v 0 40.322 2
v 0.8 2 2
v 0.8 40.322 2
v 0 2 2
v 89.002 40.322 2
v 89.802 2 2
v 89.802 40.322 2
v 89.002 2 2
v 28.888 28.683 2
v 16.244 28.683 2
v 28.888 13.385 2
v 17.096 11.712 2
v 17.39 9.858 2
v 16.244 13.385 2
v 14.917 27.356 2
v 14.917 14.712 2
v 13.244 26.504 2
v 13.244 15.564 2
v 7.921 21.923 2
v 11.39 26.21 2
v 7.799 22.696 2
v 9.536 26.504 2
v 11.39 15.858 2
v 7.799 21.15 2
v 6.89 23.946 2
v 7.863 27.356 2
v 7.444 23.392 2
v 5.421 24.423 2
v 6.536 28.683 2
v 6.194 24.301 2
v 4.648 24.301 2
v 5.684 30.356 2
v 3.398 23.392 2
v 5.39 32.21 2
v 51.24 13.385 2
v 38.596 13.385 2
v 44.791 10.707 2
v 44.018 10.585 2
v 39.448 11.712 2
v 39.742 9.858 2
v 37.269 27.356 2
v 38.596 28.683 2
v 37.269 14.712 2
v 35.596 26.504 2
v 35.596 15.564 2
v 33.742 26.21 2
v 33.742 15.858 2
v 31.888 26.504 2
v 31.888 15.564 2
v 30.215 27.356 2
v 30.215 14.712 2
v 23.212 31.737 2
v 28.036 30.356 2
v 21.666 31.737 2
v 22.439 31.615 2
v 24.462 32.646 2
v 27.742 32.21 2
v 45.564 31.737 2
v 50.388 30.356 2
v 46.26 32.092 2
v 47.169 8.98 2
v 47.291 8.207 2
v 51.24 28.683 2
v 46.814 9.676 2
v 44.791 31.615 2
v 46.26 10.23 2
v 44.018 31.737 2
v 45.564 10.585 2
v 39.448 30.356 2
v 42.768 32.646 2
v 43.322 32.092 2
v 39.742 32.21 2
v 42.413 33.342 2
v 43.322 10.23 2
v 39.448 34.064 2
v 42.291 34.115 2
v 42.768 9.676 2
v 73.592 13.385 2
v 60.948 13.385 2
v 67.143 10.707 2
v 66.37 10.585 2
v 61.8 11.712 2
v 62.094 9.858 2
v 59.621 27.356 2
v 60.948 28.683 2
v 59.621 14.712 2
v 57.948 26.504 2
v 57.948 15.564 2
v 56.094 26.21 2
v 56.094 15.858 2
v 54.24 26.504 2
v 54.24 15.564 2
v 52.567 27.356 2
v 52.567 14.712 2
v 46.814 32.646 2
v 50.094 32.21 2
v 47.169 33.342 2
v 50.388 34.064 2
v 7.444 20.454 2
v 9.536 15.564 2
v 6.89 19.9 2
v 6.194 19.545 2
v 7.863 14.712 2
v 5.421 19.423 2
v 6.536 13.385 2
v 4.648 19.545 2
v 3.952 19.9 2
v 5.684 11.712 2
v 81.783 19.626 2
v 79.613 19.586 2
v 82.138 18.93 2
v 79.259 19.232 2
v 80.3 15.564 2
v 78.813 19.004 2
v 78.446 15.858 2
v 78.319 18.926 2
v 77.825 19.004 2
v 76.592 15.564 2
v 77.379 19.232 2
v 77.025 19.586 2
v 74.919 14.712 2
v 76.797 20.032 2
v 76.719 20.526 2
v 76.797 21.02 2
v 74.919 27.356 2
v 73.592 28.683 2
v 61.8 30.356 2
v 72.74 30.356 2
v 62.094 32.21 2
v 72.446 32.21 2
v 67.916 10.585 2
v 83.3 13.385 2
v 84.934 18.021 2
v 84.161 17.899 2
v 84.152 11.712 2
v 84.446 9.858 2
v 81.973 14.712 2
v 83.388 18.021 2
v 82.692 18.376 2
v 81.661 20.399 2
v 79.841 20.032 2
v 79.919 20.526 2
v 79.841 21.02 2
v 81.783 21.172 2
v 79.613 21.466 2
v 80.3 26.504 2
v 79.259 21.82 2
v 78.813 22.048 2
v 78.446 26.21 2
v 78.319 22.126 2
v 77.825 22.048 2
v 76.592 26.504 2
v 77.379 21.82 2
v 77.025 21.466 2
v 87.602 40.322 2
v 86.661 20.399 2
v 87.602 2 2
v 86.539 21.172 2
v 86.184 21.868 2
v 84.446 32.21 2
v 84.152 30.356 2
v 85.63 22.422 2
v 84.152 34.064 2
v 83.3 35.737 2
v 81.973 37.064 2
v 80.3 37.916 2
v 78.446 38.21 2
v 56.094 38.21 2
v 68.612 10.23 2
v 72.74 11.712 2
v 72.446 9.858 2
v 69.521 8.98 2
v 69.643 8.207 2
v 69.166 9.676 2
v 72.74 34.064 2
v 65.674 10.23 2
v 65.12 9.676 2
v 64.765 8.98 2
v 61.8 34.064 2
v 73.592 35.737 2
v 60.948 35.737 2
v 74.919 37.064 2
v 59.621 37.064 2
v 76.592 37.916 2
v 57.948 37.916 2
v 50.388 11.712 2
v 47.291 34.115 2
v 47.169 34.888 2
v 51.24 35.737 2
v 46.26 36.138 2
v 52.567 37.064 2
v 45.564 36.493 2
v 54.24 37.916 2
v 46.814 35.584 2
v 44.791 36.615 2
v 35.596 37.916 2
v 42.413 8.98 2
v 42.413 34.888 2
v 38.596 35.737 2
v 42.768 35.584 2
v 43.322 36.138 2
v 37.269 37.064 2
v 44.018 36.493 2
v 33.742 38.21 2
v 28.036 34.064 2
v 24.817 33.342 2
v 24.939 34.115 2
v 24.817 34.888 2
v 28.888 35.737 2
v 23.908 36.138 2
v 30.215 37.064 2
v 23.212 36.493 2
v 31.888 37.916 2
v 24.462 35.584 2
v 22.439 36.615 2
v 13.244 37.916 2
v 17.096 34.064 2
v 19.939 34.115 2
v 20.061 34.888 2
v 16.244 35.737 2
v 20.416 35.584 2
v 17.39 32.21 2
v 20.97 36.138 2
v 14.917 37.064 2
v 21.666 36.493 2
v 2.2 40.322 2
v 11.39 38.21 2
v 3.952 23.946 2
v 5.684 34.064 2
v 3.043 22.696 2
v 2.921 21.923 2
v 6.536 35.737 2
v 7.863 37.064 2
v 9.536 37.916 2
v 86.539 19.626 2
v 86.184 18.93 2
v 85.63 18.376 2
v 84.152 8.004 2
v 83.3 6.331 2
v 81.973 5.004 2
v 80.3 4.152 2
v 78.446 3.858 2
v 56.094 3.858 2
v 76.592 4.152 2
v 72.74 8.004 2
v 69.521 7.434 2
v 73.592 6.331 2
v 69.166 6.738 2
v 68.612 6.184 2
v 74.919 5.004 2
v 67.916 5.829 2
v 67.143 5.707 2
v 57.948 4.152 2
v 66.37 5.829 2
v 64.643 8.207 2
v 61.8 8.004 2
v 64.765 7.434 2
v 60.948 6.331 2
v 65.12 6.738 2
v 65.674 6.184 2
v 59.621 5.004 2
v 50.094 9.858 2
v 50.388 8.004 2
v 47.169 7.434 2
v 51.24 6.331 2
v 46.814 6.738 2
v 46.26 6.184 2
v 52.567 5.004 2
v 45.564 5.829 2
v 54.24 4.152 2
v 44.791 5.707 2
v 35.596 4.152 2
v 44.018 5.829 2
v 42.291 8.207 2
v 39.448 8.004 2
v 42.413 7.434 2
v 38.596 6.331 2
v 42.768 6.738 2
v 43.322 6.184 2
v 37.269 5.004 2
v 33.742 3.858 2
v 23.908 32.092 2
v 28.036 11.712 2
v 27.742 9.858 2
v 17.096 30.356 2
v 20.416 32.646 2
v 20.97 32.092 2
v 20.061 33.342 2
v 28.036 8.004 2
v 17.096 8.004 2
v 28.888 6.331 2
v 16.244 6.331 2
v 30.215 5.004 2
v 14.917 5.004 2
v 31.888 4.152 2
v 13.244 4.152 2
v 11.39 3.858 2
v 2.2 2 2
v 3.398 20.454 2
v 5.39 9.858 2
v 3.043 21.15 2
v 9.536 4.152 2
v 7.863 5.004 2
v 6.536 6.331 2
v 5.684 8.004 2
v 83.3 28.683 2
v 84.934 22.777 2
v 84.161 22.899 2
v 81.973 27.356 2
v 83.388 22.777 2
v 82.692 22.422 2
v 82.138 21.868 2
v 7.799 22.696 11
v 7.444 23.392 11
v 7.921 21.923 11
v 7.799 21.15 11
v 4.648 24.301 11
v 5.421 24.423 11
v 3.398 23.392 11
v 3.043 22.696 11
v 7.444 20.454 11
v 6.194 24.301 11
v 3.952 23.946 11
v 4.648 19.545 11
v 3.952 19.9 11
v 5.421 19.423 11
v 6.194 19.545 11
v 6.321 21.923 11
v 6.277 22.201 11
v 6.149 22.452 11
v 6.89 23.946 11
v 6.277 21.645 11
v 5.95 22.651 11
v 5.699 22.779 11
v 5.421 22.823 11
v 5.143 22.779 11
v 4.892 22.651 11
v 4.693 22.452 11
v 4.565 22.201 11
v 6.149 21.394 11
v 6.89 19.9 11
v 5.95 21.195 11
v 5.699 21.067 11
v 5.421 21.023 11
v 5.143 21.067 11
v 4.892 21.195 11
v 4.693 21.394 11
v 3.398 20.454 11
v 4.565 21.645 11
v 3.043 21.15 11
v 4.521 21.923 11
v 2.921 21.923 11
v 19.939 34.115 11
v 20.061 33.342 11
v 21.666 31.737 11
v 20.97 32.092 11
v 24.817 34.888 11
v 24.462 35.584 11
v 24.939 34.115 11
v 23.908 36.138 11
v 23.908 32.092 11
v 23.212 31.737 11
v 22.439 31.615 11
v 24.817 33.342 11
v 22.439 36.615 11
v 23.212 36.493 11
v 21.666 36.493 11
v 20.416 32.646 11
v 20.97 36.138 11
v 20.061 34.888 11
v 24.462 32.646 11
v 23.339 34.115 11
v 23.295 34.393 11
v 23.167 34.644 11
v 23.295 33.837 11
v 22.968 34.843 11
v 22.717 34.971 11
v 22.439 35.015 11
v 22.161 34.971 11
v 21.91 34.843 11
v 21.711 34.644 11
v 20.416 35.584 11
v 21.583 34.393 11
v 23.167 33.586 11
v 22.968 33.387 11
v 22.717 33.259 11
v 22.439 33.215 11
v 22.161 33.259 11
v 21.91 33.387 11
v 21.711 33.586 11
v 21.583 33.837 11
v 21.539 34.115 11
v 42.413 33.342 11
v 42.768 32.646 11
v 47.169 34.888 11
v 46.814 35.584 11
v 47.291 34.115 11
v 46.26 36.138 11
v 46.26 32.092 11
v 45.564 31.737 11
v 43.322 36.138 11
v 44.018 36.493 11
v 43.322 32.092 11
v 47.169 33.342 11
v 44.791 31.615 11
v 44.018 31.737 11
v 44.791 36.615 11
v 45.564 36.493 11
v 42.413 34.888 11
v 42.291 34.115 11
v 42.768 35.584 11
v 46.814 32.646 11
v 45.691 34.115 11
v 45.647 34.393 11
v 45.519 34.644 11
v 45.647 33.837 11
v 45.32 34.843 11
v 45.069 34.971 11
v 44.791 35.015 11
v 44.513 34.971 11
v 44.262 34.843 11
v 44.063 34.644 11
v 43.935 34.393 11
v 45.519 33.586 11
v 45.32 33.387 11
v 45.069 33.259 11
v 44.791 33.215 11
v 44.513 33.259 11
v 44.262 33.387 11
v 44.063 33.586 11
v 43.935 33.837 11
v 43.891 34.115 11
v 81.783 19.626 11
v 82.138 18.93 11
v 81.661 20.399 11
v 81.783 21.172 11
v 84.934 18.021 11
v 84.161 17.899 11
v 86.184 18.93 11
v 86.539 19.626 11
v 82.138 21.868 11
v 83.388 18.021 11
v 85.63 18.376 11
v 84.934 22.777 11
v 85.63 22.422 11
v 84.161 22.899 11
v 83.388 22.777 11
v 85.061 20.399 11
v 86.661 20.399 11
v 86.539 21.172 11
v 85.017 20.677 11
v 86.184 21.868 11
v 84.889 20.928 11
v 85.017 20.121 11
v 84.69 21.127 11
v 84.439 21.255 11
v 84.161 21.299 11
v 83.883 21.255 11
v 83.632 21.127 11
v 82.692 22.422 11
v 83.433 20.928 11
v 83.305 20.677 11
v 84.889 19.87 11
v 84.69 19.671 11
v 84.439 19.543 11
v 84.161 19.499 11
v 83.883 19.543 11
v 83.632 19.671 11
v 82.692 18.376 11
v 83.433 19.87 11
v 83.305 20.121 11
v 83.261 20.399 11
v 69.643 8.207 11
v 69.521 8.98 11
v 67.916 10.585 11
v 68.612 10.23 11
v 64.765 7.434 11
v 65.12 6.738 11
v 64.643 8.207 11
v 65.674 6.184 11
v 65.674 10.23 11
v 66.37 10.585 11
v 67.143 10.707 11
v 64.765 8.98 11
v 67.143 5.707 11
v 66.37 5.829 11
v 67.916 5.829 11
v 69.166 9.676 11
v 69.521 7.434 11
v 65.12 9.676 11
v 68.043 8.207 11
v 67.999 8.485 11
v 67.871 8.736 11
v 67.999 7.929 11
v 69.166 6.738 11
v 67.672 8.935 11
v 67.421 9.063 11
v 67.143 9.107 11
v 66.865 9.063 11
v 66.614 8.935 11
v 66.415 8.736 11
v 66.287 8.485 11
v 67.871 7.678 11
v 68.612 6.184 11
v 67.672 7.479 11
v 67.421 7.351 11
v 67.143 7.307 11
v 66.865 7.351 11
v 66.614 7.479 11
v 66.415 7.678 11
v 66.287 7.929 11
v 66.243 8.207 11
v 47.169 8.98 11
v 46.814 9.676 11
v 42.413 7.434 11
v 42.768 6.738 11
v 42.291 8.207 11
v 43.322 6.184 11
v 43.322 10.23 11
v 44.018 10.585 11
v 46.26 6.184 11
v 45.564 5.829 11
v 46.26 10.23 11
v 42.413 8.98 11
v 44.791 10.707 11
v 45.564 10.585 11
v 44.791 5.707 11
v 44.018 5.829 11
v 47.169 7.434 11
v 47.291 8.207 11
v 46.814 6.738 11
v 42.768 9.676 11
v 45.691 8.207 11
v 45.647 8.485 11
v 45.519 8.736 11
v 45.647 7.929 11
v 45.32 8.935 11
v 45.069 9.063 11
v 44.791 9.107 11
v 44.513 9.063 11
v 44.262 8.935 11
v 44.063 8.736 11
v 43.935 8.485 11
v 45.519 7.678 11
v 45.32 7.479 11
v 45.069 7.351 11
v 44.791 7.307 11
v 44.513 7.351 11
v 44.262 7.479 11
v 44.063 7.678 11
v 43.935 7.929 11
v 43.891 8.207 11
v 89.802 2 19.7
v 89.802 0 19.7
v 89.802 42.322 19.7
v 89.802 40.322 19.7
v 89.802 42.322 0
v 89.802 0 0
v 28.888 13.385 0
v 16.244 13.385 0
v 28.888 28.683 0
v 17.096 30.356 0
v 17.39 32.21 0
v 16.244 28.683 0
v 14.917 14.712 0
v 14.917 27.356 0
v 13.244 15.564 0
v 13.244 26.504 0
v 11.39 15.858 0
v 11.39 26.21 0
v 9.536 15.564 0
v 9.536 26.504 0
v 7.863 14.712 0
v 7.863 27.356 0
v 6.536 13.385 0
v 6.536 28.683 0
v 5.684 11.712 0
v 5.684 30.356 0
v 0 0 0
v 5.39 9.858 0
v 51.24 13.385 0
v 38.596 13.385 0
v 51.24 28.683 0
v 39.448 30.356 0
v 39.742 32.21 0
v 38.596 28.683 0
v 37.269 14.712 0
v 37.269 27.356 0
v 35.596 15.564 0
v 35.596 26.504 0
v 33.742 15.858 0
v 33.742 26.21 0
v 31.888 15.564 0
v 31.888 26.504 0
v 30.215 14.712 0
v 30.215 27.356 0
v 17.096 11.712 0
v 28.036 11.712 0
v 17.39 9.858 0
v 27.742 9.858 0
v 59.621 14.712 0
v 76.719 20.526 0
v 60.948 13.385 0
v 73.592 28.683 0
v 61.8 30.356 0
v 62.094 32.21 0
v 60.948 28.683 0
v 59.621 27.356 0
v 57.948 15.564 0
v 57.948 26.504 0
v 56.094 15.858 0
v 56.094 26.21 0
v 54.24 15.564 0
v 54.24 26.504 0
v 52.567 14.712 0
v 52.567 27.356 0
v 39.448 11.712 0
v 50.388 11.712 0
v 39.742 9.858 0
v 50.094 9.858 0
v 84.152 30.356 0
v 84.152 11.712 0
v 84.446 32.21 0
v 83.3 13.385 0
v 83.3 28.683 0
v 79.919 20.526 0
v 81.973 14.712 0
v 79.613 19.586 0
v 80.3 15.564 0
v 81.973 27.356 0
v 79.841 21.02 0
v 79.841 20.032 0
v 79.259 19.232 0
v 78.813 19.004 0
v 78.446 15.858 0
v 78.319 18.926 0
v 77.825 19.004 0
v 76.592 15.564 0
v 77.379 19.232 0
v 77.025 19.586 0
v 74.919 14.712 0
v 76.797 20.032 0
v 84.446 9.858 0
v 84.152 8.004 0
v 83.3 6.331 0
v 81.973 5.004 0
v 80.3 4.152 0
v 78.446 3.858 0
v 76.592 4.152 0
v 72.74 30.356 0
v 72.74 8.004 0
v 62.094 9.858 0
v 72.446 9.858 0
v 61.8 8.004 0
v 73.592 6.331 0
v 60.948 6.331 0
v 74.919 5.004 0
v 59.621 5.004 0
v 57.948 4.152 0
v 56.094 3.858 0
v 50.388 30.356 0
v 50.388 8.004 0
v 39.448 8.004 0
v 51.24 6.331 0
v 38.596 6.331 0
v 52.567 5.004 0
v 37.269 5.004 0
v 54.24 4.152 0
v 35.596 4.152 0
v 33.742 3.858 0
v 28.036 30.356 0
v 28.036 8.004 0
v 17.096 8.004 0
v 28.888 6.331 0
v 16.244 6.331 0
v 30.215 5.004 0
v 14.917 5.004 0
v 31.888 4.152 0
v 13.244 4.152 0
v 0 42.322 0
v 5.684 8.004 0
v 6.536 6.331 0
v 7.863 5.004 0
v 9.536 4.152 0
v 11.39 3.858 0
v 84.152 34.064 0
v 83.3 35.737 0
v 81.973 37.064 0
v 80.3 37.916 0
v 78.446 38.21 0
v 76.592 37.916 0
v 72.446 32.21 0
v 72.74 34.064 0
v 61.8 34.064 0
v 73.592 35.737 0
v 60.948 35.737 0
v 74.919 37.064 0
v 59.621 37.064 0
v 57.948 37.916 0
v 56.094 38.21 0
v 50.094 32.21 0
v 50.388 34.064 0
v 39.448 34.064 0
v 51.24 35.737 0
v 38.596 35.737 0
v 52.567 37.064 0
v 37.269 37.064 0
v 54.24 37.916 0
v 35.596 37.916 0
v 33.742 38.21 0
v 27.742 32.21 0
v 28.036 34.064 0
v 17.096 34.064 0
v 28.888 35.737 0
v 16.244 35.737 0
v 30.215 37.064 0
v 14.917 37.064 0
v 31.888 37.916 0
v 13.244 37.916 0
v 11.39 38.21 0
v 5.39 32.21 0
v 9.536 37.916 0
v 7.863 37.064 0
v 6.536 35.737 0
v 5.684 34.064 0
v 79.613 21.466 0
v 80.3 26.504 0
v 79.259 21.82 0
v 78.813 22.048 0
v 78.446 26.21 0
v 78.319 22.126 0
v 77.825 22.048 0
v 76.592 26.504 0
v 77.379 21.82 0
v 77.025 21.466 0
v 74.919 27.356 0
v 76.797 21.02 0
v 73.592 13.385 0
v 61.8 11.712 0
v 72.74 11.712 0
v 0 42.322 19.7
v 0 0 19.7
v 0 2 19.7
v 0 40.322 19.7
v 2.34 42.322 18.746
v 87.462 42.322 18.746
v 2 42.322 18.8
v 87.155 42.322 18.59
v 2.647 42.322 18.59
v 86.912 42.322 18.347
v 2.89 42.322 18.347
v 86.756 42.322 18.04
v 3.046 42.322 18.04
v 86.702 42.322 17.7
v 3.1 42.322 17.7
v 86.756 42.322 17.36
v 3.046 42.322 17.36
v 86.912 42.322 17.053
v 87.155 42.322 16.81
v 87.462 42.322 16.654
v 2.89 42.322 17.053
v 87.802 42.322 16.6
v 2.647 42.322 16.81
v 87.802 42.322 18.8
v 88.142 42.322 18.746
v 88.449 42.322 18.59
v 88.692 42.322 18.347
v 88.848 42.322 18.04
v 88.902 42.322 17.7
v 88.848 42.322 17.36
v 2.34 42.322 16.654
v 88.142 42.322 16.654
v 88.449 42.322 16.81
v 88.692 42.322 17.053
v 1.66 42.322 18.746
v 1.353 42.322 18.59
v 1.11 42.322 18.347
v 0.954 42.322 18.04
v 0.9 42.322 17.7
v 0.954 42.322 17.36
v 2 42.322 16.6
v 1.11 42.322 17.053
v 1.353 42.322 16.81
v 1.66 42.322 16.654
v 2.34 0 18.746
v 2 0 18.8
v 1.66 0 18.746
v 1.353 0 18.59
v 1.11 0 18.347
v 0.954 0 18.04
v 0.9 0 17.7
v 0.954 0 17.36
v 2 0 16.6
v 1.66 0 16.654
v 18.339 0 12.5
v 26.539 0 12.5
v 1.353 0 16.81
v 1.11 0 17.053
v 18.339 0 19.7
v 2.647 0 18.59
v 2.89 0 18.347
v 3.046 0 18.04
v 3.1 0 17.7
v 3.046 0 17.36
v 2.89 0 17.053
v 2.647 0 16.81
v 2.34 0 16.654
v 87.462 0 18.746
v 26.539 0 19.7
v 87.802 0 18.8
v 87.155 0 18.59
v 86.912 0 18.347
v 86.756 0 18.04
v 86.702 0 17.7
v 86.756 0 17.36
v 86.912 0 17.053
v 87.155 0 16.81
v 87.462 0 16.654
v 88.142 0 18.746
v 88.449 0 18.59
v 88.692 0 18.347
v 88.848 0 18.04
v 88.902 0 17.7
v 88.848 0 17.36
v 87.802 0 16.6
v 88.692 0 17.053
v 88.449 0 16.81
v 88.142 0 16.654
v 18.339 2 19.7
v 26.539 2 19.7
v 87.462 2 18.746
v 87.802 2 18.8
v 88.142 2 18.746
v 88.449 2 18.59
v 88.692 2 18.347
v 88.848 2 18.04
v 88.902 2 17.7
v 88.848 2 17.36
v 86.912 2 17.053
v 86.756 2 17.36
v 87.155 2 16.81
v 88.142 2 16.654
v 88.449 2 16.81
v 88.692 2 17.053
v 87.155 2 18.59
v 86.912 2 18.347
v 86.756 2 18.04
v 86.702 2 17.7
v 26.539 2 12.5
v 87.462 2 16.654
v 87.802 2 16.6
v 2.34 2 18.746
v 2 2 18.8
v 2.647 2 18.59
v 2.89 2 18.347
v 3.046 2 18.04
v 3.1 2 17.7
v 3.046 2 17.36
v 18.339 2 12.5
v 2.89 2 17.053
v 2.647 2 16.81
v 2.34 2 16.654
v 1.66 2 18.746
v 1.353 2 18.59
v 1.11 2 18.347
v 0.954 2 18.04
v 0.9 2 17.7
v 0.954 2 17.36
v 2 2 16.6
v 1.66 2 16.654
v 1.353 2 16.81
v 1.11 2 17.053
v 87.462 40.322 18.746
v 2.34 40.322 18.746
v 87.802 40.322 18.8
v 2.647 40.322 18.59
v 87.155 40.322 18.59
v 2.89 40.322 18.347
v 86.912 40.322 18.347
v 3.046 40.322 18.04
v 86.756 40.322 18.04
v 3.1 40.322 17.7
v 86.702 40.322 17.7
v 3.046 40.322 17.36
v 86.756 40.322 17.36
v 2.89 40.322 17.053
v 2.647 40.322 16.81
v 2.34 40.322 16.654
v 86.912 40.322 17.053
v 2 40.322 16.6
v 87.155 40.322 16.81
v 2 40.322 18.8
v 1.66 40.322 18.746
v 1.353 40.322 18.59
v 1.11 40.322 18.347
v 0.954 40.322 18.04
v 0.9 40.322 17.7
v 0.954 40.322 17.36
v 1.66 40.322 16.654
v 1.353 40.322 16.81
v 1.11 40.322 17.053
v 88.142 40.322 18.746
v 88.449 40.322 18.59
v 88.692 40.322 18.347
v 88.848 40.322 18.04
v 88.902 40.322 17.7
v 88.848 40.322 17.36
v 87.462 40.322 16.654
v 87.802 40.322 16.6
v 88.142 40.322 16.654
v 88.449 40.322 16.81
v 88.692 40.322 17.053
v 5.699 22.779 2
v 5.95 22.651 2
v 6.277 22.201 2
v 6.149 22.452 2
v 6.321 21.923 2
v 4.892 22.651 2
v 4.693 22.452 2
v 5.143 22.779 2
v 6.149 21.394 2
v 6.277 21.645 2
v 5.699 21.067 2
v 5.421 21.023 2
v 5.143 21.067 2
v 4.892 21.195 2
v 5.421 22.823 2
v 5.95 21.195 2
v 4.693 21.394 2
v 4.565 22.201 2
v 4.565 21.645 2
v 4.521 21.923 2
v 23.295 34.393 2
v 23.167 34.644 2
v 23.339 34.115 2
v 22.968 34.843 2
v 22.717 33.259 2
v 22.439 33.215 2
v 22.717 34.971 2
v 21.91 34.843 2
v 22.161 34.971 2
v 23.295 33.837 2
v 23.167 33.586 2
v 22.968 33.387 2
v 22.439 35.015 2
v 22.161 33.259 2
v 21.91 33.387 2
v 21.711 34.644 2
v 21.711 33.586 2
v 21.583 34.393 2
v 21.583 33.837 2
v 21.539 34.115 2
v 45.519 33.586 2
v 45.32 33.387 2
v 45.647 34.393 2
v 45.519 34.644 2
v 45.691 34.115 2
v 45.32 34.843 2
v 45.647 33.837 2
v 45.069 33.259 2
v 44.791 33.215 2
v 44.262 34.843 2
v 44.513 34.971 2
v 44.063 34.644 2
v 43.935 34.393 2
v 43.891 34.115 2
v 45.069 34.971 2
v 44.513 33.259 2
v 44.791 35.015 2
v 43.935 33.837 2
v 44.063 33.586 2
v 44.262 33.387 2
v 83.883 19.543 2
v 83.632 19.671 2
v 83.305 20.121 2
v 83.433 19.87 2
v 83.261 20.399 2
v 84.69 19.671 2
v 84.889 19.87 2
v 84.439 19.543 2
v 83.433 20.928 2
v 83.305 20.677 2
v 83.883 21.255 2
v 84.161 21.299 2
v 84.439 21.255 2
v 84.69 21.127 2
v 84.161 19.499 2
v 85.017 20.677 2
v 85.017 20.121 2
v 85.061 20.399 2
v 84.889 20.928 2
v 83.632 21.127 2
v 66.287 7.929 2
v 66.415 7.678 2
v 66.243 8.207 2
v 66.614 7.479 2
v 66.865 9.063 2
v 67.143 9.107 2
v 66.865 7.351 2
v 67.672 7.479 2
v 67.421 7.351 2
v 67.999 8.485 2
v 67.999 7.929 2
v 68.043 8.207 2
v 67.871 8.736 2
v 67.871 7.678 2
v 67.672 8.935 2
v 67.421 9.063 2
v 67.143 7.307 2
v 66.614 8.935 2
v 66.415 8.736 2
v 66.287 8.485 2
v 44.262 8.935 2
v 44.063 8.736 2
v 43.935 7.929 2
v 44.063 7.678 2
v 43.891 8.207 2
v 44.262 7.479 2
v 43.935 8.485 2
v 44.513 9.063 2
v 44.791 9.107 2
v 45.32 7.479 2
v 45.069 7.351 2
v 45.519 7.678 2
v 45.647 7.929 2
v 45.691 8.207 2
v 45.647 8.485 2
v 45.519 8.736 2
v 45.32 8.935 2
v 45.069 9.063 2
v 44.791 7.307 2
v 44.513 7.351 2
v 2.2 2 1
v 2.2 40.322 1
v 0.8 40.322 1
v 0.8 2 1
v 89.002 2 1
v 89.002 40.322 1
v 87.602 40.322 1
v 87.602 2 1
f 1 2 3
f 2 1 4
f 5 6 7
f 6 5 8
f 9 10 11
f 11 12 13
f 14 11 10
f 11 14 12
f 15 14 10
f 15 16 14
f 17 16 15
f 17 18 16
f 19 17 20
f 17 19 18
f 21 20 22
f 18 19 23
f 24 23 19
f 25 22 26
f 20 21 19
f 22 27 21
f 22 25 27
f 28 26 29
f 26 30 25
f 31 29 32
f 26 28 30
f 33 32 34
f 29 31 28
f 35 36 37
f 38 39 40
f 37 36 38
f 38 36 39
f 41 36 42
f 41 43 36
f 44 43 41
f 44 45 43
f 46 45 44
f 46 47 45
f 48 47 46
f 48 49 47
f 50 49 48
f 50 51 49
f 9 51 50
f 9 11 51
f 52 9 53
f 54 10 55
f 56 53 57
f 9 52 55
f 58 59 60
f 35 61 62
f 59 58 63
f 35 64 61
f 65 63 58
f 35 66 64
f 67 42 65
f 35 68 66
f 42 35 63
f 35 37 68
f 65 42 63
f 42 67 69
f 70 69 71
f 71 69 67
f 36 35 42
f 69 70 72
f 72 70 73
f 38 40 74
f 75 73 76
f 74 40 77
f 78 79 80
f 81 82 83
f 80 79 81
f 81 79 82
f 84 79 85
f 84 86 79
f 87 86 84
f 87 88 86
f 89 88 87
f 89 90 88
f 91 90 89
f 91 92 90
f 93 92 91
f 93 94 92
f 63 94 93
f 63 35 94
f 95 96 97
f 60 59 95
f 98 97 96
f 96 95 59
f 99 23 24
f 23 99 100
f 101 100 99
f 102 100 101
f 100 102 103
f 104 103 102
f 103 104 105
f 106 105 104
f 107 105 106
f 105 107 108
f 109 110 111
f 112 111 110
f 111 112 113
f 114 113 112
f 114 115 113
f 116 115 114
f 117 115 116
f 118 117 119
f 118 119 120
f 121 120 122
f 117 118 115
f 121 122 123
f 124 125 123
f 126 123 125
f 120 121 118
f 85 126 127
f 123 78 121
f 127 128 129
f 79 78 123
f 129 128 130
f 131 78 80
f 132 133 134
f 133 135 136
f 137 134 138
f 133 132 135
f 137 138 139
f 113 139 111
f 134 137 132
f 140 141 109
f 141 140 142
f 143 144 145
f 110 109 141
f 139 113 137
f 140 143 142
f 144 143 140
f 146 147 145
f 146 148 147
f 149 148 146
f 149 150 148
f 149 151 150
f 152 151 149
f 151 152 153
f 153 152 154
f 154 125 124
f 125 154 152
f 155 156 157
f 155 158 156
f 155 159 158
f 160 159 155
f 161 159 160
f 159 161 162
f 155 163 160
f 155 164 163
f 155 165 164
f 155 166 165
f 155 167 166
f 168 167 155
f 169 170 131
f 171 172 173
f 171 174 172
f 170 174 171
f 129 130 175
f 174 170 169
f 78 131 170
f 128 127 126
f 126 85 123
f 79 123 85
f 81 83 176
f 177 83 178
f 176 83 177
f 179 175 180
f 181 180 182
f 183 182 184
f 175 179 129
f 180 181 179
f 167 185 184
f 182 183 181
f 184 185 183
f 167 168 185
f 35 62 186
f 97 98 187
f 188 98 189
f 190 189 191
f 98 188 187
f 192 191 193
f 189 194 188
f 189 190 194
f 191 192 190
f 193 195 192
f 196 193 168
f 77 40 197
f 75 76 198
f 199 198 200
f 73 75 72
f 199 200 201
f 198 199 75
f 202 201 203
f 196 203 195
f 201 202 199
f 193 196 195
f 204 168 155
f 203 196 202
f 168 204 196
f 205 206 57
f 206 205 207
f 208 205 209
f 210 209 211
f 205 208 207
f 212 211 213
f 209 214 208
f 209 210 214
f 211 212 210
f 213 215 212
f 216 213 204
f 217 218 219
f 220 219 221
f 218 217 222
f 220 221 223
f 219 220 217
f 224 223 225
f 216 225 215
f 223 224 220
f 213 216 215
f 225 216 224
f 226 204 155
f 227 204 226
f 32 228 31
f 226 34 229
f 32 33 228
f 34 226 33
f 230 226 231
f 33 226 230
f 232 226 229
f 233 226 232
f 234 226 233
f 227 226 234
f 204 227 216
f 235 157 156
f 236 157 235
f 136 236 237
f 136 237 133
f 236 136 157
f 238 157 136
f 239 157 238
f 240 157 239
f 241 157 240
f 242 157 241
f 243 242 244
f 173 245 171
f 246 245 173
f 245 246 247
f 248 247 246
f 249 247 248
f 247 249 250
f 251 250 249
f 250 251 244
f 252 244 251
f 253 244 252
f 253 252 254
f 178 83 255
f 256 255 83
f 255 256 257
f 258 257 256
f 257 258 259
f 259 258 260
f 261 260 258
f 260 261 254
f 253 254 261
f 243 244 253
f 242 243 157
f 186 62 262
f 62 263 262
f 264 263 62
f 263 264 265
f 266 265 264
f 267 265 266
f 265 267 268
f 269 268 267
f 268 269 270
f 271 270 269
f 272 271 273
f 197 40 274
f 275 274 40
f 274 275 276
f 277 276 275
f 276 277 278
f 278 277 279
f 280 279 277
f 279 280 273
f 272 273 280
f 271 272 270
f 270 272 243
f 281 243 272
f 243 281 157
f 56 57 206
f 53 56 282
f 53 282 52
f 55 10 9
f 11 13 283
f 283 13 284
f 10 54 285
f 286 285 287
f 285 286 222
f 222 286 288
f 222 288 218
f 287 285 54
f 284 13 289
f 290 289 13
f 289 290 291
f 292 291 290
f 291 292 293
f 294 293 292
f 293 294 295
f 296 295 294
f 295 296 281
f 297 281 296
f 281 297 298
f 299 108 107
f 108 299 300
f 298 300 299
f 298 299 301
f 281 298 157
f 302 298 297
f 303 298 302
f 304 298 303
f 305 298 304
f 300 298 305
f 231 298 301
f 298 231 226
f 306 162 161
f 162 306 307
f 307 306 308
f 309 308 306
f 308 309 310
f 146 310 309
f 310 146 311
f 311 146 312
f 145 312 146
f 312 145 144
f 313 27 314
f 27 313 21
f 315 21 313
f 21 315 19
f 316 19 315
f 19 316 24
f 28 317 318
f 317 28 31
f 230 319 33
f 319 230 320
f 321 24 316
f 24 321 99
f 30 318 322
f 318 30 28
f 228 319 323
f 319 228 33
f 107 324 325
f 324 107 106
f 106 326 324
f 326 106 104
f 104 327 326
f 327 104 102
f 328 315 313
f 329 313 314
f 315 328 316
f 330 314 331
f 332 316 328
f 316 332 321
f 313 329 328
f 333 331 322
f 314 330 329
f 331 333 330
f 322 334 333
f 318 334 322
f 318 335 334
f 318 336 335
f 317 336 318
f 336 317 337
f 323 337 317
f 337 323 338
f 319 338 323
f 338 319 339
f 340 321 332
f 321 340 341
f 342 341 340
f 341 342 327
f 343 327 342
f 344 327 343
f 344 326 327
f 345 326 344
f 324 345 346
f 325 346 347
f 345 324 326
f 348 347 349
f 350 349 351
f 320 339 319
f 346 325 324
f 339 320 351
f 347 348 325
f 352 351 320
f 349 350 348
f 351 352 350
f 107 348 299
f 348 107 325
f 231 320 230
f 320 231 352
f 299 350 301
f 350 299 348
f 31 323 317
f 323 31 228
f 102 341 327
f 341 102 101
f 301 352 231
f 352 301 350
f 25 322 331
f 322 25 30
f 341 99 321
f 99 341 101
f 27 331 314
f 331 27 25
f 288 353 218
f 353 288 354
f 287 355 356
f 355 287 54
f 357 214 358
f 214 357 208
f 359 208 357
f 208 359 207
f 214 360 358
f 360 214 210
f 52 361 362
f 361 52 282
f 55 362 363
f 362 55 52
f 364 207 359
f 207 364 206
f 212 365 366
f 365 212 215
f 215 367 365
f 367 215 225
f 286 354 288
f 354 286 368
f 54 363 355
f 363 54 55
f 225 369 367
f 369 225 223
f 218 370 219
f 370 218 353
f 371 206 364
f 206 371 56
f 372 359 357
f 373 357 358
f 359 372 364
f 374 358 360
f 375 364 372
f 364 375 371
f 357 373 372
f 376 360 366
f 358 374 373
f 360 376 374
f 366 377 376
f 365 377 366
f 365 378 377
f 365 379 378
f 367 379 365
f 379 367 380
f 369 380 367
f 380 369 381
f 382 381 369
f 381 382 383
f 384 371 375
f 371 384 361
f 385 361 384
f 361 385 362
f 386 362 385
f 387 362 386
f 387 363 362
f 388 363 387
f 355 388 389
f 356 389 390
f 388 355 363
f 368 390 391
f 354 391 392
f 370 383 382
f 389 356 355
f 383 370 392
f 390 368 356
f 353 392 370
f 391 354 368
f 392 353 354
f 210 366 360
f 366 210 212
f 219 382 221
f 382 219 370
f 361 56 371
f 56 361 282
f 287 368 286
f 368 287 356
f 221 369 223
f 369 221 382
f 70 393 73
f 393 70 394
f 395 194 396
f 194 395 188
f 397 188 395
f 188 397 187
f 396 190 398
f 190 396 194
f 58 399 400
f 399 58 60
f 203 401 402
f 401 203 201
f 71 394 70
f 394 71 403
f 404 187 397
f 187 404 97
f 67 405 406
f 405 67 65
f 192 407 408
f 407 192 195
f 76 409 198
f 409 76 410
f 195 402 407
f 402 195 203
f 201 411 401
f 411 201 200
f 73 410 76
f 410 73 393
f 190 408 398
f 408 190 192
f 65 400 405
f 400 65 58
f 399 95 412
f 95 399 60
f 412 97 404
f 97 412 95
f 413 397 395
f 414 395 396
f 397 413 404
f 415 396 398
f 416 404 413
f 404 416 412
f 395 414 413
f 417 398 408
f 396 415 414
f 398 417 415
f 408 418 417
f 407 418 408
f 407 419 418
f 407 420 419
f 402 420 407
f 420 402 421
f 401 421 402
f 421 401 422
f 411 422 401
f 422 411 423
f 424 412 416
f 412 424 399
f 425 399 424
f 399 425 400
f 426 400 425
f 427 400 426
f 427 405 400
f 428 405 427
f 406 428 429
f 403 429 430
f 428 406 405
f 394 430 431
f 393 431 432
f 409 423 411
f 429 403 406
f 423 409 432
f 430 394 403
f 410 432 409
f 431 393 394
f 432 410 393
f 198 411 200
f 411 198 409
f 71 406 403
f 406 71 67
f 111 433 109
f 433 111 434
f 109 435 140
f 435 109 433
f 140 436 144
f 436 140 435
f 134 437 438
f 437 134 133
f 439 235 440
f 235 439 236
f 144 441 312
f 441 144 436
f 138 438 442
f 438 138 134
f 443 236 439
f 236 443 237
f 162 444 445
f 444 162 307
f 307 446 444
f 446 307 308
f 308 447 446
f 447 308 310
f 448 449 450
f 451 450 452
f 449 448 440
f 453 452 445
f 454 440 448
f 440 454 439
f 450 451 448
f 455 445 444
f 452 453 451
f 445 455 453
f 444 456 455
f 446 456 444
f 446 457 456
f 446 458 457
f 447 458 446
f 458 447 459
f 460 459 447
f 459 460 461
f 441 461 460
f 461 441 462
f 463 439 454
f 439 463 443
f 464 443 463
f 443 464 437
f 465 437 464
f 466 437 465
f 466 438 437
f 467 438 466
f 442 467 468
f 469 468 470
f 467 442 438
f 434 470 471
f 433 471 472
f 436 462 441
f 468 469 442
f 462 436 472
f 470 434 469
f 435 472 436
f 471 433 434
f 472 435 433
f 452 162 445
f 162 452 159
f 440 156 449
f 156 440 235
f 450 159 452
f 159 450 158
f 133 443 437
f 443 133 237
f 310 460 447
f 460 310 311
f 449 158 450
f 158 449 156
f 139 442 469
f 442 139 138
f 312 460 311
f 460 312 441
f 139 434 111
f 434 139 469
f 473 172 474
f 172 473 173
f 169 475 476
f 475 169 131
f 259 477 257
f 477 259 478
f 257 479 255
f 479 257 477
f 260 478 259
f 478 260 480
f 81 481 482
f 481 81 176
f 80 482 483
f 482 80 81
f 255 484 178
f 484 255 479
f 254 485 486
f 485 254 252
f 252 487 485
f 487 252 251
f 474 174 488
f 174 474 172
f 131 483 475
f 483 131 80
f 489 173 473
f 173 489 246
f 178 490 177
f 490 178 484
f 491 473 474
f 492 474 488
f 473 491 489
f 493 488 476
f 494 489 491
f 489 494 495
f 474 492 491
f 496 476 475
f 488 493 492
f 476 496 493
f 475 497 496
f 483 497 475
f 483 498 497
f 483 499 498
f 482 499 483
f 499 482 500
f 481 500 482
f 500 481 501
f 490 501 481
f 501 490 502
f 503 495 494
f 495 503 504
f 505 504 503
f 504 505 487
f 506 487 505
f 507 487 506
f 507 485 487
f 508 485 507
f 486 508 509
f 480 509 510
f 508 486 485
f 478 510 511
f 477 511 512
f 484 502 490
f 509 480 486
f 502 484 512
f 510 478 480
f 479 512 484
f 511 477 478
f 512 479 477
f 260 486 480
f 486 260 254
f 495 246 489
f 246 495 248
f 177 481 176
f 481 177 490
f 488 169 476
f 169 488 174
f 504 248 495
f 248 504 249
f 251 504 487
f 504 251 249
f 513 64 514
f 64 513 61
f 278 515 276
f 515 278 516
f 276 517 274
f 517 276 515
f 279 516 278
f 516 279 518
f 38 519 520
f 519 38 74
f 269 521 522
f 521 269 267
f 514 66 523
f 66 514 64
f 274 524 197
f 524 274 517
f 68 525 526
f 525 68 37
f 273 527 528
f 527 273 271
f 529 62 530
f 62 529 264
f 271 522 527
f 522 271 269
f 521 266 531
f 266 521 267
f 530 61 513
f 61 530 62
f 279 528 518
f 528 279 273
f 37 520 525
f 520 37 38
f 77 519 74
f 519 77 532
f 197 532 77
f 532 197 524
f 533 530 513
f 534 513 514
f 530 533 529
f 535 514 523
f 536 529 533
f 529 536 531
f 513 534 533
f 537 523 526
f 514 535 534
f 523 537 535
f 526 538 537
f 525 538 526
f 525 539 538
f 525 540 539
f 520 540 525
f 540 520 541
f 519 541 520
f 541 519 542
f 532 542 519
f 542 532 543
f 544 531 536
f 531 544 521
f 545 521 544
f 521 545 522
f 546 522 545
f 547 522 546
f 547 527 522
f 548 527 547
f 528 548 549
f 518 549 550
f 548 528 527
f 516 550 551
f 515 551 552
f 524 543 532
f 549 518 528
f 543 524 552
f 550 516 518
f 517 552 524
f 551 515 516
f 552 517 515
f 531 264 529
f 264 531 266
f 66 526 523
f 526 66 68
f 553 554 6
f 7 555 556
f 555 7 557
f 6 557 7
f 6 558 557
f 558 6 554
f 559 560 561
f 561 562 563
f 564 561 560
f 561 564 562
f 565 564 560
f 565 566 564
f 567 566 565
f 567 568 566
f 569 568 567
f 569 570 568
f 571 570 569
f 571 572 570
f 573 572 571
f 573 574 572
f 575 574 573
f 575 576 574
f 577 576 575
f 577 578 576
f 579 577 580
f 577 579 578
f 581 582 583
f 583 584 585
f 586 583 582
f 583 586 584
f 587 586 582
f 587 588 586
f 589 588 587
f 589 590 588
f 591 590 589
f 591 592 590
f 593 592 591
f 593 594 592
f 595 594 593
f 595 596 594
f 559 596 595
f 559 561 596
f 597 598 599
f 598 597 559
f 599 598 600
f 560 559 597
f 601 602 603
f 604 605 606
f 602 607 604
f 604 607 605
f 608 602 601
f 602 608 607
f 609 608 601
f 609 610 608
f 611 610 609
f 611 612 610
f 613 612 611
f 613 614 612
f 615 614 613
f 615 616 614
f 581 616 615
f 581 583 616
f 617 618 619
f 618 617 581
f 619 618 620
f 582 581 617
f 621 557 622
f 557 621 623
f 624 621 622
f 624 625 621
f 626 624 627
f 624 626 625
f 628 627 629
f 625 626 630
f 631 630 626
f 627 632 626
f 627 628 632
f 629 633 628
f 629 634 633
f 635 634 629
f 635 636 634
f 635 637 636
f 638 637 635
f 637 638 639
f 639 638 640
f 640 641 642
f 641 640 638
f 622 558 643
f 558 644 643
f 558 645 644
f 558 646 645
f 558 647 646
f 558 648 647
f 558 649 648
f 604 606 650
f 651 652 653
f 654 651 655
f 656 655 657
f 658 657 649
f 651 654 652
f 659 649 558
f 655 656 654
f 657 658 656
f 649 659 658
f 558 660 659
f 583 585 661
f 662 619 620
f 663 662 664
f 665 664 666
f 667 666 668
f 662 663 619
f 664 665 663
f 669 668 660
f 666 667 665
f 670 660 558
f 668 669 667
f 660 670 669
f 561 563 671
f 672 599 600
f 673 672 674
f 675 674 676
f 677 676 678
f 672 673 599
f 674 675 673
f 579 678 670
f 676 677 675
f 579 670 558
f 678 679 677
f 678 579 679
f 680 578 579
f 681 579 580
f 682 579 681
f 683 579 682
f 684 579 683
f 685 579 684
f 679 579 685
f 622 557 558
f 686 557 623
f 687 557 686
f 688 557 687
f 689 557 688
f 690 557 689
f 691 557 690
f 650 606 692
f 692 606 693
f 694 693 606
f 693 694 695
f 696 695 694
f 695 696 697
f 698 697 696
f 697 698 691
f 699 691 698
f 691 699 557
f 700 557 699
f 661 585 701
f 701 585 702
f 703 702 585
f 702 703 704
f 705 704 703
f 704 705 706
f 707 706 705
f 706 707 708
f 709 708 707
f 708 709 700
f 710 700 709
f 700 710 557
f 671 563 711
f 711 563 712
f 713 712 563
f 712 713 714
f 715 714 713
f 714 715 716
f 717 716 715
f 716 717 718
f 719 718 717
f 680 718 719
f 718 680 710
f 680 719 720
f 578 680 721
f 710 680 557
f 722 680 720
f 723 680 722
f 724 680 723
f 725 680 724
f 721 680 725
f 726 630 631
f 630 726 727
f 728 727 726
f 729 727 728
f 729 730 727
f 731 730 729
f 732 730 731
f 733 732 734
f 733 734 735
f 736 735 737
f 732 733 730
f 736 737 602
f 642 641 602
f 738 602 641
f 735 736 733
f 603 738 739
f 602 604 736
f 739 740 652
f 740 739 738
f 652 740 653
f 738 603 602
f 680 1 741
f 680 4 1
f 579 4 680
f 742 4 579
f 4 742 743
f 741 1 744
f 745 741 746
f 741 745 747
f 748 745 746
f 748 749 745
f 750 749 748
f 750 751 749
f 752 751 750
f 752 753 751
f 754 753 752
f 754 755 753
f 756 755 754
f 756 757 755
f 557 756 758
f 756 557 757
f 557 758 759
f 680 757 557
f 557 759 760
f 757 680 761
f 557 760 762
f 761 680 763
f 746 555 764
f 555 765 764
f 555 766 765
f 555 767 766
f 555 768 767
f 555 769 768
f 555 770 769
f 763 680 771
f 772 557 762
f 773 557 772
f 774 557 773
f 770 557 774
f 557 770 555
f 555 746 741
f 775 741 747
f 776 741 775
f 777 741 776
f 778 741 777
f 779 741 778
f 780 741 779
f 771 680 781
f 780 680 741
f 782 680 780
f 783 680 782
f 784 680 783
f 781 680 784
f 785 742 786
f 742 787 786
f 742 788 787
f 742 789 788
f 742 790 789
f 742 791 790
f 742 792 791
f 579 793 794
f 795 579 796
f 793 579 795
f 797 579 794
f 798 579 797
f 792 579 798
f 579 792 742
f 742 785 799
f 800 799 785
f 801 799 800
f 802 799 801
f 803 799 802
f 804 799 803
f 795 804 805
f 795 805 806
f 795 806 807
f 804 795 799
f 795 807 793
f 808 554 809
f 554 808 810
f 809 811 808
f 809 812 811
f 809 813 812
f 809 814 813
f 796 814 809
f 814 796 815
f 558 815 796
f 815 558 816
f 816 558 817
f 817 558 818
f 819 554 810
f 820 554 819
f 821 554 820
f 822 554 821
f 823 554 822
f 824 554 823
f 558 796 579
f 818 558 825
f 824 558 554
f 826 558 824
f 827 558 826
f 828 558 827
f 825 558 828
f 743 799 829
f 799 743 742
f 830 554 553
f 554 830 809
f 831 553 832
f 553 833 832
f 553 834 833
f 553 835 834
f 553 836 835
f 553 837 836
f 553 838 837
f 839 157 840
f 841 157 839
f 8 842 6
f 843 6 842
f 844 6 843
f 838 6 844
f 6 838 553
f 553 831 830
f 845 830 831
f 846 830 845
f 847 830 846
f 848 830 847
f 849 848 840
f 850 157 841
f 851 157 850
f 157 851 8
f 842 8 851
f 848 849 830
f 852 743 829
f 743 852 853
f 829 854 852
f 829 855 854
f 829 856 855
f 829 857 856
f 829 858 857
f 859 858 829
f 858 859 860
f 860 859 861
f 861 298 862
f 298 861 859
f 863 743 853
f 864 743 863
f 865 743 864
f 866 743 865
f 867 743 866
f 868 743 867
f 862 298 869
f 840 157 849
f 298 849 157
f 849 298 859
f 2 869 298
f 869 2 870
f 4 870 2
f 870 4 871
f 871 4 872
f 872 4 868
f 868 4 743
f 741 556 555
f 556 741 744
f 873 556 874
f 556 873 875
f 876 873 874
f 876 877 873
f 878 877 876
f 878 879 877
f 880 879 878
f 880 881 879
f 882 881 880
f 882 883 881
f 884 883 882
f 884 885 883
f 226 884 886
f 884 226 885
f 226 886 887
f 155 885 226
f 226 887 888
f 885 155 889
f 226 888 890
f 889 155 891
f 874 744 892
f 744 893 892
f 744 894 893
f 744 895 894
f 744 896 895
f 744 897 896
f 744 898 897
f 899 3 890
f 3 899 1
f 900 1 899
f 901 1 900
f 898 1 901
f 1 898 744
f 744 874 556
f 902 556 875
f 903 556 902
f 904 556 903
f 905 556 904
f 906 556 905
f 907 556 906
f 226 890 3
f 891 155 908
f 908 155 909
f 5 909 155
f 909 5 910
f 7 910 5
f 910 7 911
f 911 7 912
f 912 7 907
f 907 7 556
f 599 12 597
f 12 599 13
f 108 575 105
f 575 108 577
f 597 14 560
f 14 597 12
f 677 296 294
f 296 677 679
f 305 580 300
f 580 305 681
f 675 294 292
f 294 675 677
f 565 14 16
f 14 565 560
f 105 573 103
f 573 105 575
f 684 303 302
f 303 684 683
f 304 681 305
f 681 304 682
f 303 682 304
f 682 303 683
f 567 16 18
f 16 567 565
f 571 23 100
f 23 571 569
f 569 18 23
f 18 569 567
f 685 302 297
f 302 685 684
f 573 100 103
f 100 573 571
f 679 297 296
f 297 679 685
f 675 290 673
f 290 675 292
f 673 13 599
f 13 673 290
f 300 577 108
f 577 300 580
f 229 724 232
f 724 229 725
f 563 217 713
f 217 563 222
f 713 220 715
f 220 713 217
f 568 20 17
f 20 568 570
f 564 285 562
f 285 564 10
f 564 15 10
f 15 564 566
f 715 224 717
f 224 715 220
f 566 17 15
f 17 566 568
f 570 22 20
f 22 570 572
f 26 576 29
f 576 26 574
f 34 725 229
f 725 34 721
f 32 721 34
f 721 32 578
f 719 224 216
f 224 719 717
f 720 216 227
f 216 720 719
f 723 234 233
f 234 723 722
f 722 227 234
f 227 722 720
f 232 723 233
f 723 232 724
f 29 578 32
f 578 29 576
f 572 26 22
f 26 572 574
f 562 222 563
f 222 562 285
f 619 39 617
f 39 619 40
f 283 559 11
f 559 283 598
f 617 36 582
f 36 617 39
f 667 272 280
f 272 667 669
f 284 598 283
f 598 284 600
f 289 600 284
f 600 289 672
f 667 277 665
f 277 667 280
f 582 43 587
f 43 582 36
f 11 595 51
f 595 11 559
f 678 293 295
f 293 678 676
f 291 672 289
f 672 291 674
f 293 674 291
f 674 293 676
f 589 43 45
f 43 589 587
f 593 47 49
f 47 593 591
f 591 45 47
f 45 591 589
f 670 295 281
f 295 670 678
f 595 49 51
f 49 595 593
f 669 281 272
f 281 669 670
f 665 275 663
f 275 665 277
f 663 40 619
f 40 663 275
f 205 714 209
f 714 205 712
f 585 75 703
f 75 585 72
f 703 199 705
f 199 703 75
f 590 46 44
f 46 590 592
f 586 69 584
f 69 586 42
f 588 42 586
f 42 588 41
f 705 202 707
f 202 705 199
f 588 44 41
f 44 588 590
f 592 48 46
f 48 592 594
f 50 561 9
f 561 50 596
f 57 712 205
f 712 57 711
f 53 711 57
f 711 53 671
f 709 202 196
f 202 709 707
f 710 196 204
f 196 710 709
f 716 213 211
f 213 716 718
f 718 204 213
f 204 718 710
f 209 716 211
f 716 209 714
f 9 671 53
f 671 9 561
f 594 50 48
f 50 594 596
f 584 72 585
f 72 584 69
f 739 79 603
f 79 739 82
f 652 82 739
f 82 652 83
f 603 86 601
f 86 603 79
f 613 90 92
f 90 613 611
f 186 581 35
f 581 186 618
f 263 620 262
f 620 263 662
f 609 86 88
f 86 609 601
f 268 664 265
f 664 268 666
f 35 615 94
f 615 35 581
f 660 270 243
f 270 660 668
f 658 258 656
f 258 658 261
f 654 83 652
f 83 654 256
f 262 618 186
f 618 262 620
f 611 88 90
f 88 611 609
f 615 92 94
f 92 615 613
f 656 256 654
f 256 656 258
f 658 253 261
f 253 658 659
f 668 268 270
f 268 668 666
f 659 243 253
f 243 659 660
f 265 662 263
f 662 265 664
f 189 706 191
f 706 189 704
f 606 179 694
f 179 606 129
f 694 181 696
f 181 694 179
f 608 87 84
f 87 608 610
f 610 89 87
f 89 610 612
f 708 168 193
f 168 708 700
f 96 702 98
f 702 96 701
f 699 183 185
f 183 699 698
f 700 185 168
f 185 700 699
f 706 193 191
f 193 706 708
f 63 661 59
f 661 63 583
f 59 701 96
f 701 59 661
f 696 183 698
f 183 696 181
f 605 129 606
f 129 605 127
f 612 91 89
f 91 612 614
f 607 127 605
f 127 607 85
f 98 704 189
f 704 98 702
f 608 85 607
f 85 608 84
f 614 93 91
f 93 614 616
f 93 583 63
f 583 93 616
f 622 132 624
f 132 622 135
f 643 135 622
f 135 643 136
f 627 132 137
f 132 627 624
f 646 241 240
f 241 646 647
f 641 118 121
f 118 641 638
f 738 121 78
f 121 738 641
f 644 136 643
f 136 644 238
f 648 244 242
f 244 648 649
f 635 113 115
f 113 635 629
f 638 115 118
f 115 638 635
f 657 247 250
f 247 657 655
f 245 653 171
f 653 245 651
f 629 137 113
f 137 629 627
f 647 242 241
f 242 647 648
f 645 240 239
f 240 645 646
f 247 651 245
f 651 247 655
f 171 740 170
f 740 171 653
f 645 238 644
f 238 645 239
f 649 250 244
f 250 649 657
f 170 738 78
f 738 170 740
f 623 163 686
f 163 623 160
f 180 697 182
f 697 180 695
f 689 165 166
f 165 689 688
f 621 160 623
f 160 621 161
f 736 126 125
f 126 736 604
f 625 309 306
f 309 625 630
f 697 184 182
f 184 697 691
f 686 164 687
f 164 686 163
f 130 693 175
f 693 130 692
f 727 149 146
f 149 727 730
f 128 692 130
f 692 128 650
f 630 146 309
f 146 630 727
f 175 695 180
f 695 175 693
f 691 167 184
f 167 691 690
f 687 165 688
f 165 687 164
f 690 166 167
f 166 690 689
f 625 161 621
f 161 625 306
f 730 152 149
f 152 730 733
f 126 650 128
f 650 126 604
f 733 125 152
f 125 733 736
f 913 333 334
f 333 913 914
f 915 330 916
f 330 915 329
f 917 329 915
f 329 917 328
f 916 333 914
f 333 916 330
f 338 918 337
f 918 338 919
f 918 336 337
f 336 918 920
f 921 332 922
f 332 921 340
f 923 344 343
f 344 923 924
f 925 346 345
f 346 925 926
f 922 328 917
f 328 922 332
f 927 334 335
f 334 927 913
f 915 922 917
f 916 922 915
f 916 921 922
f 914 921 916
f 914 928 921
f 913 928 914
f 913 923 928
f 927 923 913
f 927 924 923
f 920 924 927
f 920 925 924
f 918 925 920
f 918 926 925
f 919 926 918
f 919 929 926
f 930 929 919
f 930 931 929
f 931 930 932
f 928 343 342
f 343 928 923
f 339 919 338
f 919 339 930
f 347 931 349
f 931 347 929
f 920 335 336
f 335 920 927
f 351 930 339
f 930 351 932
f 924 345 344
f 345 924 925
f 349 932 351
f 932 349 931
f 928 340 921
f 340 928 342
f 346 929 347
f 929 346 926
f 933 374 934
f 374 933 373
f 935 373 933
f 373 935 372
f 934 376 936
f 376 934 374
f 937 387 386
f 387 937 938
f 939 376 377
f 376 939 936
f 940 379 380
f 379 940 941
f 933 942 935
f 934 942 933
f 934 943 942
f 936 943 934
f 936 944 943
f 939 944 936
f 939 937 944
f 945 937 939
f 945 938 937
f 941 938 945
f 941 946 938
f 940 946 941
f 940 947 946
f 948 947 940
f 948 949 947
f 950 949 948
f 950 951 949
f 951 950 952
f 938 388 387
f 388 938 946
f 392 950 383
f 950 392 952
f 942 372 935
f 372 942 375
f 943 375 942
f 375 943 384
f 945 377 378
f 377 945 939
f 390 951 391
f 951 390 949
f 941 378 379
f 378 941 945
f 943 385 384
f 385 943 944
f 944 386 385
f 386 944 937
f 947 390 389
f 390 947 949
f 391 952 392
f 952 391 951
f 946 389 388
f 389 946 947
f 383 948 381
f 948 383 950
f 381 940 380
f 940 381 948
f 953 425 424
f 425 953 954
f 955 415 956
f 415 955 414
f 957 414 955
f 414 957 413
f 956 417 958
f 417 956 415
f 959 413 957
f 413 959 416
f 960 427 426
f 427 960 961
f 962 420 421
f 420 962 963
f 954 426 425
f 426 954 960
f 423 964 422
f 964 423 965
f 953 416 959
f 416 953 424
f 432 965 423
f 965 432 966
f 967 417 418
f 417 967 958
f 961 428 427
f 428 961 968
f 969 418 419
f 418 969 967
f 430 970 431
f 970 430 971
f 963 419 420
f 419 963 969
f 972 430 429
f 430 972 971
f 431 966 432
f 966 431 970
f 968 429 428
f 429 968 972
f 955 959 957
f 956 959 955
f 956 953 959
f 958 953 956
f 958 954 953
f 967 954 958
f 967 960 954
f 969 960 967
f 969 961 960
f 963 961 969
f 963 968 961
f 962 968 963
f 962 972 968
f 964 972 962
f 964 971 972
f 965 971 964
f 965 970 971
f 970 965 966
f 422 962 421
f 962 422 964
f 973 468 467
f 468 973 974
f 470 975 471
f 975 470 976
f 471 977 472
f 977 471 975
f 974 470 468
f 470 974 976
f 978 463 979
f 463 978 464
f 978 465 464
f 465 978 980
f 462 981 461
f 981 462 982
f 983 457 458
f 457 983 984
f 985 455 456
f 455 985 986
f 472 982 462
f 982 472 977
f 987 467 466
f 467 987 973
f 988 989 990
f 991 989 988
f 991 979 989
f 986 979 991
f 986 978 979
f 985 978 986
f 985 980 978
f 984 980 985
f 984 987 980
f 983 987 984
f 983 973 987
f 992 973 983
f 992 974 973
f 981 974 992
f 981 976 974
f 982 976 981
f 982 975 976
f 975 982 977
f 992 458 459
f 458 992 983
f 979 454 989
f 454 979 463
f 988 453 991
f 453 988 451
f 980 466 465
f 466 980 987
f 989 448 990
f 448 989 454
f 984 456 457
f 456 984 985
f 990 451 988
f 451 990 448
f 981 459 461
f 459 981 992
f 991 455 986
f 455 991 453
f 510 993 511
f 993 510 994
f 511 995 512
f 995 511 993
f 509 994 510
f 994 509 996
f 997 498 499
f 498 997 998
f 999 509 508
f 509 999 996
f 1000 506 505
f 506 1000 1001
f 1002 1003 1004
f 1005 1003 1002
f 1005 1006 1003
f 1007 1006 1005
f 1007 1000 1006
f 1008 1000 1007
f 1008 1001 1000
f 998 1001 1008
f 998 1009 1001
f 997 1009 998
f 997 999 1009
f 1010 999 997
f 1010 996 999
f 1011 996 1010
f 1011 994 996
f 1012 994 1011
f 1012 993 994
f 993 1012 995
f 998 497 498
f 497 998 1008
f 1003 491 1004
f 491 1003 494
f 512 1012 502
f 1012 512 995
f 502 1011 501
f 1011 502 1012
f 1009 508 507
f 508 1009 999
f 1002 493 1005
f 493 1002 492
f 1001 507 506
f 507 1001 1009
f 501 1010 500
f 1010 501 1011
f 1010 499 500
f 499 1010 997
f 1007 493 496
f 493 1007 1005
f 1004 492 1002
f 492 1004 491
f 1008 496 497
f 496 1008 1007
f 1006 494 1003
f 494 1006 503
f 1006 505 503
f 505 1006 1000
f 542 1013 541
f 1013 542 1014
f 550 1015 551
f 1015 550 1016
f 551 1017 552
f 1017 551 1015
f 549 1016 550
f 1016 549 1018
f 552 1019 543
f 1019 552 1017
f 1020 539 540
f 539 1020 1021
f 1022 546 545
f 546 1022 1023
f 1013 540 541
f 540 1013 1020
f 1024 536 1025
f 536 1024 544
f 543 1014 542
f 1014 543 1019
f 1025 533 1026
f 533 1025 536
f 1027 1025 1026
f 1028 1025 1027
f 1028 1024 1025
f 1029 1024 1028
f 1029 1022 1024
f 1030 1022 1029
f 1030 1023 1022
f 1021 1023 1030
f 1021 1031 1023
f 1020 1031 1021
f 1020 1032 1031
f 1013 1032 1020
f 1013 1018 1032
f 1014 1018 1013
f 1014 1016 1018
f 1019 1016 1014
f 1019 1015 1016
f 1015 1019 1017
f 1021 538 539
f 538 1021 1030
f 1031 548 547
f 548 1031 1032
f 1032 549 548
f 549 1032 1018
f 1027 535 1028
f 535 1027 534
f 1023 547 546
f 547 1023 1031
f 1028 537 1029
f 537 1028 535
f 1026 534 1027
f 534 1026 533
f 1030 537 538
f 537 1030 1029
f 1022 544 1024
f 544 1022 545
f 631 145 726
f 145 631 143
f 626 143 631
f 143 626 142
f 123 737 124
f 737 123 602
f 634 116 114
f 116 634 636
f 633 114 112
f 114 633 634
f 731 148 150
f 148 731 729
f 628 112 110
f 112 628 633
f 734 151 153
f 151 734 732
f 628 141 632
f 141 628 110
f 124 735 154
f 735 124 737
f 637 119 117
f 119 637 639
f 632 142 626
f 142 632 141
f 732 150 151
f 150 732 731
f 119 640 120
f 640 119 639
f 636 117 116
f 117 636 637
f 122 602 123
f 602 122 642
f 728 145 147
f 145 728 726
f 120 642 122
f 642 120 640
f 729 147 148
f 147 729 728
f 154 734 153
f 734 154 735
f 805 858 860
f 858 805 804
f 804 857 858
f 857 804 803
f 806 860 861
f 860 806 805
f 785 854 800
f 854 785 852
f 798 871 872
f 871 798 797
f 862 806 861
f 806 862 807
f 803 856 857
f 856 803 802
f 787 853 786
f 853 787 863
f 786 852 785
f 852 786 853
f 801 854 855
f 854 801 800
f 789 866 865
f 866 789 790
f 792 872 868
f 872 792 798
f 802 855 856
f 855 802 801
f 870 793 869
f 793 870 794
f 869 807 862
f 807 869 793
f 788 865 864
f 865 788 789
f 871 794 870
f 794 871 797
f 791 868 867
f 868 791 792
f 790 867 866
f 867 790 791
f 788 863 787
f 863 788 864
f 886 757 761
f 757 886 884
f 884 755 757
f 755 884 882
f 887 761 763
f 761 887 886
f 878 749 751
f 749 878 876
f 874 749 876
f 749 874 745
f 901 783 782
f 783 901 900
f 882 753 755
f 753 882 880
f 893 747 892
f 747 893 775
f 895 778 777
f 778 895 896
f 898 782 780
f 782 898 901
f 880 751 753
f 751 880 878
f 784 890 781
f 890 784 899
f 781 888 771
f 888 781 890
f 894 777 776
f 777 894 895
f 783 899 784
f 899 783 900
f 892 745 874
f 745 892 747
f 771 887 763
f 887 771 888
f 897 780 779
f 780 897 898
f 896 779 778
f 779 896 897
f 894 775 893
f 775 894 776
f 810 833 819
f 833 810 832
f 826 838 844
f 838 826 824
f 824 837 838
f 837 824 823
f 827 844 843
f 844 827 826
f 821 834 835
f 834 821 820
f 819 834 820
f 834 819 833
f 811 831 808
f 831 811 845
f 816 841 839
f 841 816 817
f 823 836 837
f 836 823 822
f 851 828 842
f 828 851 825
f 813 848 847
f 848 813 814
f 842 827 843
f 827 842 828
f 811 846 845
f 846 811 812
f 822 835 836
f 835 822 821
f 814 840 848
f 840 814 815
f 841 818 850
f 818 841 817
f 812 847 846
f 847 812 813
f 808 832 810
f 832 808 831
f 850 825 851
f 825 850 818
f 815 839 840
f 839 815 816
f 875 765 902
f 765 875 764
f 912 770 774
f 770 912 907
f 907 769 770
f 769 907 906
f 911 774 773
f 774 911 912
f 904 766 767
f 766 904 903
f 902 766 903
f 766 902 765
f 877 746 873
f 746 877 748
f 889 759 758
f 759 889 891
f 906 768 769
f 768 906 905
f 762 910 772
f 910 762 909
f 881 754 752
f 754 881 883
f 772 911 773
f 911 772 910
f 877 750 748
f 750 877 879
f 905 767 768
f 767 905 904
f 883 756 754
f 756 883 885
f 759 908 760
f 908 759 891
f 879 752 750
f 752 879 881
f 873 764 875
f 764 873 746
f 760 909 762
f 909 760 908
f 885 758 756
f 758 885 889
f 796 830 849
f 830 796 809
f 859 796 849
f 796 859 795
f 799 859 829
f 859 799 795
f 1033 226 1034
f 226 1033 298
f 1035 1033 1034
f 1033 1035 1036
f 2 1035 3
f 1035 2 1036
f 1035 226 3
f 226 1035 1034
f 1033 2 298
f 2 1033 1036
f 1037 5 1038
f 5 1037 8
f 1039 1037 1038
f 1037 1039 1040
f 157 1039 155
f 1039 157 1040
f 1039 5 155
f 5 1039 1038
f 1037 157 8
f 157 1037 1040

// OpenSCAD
// file: settings.scad
/*
 * SPDX-FileCopyrightText: 2022 Rafael G. Martins <rafael@rafaelmartins.eng.br>
 * SPDX-License-Identifier: CERN-OHL-S-2.0
 */

thickness = 2;

pcb_width = 84.582;
pcb_length = 36.322;
pcb_screw1_x = 2.921;
pcb_screw1_y = 5.207 + 13.716;
pcb_screw2_x = pcb_screw1_x + 17.018;
pcb_screw2_y = pcb_screw1_y + 12.192;
pcb_screw3_x = pcb_screw2_x + 22.352;
pcb_screw3_y = pcb_screw2_y;
pcb_screw_base_height = 9;
pcb_screw_base_d = 5;
pcb_screw_d = 2;
pcb_padding_x = thickness + 0.5;
pcb_padding_y = thickness + 1;

screw_d = 2;
screw_h = 7;

usb_height = 4.4;
usb_width = 8.2;
usb_distance_x = pcb_padding_x + 19.939 - usb_width / 2;
usb_distance_z = thickness + pcb_screw_base_height + 1.6 - 0.1;

button0_x = 8.890;
button0_y = 6.858;
button_d = 12;
button_distance = 22.352;

led_width = 1.8;
led_length = 1;
led_margin = 1;
led_x = 75.819;
led_y = 17.526;
led_d = 3.2;

gap = thickness * 0.2;

width = pcb_width + 2 * pcb_padding_x + 0.22;  // buttons are slightly out of center :(
length = pcb_length + 2 * pcb_padding_y;
height = usb_distance_z + usb_height + 0.8 + thickness;
// file: lib/screw-base.scad
// SPDX-FileCopyrightText: 2022-2024 Rafael G. Martins <rafael@rafaelmartins.eng.br>
// SPDX-License-Identifier: CERN-OHL-S-2.0

function screw_base_dim(screw_d) = screw_d + 2;
function screw_base_height(screw_h) = screw_h + 1;


module screw_base_add(screw_d, screw_h) {
    cube([screw_base_dim(screw_d), screw_base_dim(screw_d), screw_base_height(screw_h)]);
}


module screw_base_sub(screw_d, screw_h) {
    translate([screw_base_dim(screw_d) / 2, screw_base_dim(screw_d) / 2, 0])
        cylinder(screw_h, d=screw_d - 0.2, $fn=20);
}
// main file
/*
 * SPDX-FileCopyrightText: 2022 Rafael G. Martins <rafael@rafaelmartins.eng.br>
 * SPDX-License-Identifier: CERN-OHL-S-2.0
 */

include <lib/screw-base.scad>
include <settings.scad>

difference() {
    union() {
        cube([width, length, thickness]);
        cube([width, thickness, height]);
        translate([0, length - thickness, 0])
            cube([width, thickness, height]);

        for (i=[0:1]) {
            translate([pcb_padding_x + i * pcb_width, pcb_padding_y + i * pcb_length, thickness]) {
                rotate([0, 0, i * 180]) {
                    translate([pcb_screw1_x, pcb_screw1_y, 0])
                        cylinder(pcb_screw_base_height, d=pcb_screw_base_d, $fn=20);
                    translate([pcb_screw2_x, pcb_screw2_y, 0])
                        cylinder(pcb_screw_base_height, d=pcb_screw_base_d, $fn=20);
                    translate([pcb_screw3_x, pcb_screw3_y, 0])
                        cylinder(pcb_screw_base_height, d=pcb_screw_base_d, $fn=20);
                }
            }
        }
    }

    translate([pcb_padding_x, pcb_padding_y, 0]) {
        for (i=[0:1]) {
            translate([i * pcb_width, i * pcb_length, thickness]) {
                rotate([0, 0, i * 180]) {
                    translate([pcb_screw1_x, pcb_screw1_y, 0])
                        cylinder(pcb_screw_base_height, d=pcb_screw_d - 0.2, $fn=20);
                    translate([pcb_screw2_x, pcb_screw2_y, 0])
                        cylinder(pcb_screw_base_height, d=pcb_screw_d - 0.2, $fn=20);
                    translate([pcb_screw3_x, pcb_screw3_y, 0])
                        cylinder(pcb_screw_base_height, d=pcb_screw_d - 0.2, $fn=20);
                }
            }
        }

        for(i=[0:3])
            for(j=[0:1])
                translate([button0_x + i * button_distance, button0_y + j * button_distance, 0])
                    cylinder(thickness, d=button_d, $fn=20);

        translate([led_x, led_y, 0])
            cylinder(thickness, d=led_d, $fn=20);
    }

    translate([usb_distance_x, 0, usb_distance_z])
        cube([usb_width, thickness, height - usb_distance_z]);

    for (i=[0:1])
        for (j=[0:1])
            translate([screw_base_dim(screw_d) / 2 + i * (width - screw_base_dim(screw_d)),
                       j * (length - thickness),
                       height - screw_base_dim(screw_d) / 2])
                rotate([-90, 0, 0])
                    cylinder(thickness, d=screw_d * 1.1, $fn=20);

    translate([(thickness - gap) / 2, thickness, thickness / 2])
        cube([thickness / 2 + gap, length - 2 * thickness, thickness / 2]);
    translate([width - thickness - gap / 2, thickness, thickness / 2])
        cube([thickness / 2 + gap, length - 2 * thickness, thickness / 2]);
}
